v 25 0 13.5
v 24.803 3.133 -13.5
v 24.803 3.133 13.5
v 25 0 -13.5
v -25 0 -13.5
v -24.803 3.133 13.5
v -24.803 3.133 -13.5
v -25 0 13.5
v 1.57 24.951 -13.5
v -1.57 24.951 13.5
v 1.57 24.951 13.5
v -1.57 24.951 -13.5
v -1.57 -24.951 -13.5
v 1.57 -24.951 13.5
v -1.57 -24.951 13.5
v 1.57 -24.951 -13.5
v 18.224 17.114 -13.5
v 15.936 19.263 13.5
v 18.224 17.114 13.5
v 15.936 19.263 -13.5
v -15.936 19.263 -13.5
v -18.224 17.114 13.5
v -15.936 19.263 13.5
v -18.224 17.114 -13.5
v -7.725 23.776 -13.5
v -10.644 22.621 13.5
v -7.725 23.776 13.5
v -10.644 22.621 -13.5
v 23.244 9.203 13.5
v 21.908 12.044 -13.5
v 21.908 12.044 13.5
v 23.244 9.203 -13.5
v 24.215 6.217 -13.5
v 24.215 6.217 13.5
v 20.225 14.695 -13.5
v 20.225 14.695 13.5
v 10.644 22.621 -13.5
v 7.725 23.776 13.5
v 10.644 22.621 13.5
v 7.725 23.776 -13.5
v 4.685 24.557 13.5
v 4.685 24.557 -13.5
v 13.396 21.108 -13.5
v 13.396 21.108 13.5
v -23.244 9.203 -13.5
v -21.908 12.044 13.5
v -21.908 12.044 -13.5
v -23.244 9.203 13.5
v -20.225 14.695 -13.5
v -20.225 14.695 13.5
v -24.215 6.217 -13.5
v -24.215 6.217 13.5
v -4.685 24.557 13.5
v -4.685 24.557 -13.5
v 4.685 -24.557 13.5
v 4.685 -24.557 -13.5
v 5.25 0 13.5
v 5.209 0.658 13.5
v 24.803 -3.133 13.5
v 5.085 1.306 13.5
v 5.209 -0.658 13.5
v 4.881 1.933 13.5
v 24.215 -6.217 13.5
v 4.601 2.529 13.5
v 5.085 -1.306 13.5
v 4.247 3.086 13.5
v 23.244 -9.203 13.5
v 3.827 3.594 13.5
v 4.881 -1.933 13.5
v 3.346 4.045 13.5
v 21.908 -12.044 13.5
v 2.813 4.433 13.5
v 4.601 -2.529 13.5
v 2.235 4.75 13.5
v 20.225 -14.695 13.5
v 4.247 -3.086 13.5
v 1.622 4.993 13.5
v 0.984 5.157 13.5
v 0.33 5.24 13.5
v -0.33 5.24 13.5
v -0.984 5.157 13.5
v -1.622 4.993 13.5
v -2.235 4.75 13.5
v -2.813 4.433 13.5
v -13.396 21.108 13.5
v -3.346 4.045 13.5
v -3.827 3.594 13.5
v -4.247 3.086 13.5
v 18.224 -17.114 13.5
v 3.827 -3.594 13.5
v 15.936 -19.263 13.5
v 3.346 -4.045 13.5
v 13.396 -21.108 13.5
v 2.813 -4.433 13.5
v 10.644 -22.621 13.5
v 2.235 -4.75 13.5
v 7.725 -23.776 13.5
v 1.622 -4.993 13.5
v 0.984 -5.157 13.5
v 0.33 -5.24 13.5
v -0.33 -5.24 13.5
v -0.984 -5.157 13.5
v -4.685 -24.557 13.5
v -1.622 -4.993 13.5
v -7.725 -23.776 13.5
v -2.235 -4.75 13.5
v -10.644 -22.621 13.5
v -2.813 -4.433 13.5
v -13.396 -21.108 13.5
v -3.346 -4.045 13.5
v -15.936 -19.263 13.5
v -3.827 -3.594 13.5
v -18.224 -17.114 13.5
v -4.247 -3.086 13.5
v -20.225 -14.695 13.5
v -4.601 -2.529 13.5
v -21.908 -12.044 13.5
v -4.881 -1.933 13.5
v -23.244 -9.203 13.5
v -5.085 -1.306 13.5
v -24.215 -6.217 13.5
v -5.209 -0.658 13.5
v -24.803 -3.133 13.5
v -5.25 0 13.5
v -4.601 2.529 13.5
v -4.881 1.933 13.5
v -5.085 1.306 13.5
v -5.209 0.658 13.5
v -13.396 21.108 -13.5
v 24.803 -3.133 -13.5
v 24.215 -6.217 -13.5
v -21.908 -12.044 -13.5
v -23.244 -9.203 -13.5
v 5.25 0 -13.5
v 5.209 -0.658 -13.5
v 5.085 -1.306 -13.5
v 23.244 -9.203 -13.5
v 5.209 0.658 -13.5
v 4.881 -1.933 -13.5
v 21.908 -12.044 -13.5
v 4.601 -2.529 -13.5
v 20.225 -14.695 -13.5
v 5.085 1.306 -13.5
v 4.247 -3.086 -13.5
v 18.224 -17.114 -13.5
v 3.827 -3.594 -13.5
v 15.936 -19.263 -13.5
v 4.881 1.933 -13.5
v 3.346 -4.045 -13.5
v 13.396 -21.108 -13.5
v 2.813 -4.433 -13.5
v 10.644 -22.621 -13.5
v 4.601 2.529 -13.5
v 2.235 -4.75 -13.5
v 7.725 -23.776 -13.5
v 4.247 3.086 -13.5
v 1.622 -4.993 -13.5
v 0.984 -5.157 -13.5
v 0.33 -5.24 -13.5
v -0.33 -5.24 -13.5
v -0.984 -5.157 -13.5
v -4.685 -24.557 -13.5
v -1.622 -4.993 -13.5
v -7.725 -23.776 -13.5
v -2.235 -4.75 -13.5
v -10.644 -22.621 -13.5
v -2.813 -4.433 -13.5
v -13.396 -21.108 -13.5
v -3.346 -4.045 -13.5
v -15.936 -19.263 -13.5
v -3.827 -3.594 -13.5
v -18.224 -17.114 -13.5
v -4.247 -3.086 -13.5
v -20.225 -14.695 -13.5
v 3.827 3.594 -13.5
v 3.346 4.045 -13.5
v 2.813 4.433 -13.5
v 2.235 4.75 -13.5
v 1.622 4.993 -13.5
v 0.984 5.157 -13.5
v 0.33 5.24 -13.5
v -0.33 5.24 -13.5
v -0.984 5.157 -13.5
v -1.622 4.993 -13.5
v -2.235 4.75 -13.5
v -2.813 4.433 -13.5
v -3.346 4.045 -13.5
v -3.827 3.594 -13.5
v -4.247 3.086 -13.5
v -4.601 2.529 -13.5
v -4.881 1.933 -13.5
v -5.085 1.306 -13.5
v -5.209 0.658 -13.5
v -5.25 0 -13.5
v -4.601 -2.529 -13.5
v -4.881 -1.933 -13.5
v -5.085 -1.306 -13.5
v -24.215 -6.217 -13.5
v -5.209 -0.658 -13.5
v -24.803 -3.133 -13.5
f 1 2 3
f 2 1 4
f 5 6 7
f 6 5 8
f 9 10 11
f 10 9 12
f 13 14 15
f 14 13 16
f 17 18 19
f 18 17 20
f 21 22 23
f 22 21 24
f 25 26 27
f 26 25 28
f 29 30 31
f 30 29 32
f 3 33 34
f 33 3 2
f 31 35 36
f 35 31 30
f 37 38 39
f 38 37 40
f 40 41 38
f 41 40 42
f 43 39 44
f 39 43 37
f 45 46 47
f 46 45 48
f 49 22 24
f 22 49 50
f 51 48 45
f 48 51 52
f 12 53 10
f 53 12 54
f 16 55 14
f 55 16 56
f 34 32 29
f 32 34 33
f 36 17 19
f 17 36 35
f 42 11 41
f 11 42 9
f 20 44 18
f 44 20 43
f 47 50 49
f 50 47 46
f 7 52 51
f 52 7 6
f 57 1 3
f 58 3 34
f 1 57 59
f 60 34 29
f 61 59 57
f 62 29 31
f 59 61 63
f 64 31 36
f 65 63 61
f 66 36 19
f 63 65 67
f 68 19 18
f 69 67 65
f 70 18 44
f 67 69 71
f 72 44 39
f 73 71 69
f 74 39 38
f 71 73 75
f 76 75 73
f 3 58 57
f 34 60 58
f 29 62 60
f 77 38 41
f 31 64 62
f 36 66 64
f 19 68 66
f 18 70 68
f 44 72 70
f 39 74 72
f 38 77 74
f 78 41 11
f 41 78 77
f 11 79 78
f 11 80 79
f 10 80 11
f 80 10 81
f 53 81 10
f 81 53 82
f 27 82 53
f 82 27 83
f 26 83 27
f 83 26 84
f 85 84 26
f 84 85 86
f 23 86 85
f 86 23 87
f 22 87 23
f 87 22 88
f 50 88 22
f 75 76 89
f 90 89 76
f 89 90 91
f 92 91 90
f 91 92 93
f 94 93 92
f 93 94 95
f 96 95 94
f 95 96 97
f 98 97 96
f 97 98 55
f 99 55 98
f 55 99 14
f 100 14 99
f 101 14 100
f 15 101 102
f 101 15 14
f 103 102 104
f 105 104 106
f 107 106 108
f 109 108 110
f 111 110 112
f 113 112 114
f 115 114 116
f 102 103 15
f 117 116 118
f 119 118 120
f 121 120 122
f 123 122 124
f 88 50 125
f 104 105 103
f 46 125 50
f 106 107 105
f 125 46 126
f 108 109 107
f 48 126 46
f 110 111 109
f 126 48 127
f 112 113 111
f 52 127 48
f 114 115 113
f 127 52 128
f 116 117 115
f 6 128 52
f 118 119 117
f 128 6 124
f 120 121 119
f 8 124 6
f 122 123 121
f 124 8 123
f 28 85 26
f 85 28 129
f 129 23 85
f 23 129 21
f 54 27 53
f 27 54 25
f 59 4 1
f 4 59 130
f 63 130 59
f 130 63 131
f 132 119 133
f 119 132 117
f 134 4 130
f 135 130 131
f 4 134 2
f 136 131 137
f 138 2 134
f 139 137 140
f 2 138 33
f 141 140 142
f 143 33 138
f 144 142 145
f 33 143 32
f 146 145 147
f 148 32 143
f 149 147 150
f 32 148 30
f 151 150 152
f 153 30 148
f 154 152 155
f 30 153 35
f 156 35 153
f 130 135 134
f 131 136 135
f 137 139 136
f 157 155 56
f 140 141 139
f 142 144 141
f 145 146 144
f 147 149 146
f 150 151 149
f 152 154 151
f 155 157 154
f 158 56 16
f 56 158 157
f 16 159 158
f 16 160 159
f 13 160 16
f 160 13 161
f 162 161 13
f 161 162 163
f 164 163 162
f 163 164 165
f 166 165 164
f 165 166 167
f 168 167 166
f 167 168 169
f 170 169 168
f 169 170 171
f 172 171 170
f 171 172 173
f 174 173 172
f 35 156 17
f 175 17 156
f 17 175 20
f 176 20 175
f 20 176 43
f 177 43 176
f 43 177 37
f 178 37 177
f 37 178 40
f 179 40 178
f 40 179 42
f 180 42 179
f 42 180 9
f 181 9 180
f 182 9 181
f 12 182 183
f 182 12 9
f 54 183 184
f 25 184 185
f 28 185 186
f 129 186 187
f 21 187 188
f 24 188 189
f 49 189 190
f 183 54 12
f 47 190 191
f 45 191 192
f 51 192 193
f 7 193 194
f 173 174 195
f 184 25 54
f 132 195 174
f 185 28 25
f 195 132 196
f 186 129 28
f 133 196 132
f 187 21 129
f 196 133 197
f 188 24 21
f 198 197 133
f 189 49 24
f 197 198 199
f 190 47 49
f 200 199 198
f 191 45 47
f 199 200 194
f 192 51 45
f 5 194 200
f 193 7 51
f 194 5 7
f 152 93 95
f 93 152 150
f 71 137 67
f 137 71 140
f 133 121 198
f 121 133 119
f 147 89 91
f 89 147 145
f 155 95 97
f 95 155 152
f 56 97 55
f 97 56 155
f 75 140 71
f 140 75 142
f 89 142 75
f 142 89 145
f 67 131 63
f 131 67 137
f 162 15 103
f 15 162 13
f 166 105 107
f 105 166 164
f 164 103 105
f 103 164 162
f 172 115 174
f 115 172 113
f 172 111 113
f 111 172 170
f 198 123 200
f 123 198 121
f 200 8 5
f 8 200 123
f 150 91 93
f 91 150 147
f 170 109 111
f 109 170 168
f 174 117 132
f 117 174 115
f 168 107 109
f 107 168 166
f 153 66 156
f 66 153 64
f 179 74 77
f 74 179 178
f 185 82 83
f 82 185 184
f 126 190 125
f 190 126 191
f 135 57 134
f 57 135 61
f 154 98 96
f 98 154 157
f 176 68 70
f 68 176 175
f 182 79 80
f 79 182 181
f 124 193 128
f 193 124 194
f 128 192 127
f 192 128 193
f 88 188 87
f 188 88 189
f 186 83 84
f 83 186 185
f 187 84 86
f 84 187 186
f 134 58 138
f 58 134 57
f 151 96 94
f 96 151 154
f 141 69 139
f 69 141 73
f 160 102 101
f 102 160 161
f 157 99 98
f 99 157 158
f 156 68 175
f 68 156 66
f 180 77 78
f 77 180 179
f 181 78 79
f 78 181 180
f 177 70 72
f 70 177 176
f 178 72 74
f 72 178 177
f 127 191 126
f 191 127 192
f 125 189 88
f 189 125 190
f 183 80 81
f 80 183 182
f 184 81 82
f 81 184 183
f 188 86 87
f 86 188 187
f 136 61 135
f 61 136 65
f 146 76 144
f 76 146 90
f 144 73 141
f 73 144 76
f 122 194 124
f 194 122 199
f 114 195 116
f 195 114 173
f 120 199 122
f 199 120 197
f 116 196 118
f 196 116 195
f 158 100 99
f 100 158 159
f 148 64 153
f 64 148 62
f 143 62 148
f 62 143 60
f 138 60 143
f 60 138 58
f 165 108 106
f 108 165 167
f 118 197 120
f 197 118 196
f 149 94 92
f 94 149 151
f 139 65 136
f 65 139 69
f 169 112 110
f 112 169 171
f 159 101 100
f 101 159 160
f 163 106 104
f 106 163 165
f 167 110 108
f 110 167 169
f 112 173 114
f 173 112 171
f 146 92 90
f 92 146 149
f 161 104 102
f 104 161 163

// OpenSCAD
$fn = 50;


difference() {
	union() {
		translate(v = [0, 0, -13.5000000000]) {
			cylinder(h = 27, r = 25.0000000000);
		}
	}
	union() {
		translate(v = [0, 0, -100.0000000000]) {
			cylinder(h = 200, r = 5.2500000000);
		}
	}
}
